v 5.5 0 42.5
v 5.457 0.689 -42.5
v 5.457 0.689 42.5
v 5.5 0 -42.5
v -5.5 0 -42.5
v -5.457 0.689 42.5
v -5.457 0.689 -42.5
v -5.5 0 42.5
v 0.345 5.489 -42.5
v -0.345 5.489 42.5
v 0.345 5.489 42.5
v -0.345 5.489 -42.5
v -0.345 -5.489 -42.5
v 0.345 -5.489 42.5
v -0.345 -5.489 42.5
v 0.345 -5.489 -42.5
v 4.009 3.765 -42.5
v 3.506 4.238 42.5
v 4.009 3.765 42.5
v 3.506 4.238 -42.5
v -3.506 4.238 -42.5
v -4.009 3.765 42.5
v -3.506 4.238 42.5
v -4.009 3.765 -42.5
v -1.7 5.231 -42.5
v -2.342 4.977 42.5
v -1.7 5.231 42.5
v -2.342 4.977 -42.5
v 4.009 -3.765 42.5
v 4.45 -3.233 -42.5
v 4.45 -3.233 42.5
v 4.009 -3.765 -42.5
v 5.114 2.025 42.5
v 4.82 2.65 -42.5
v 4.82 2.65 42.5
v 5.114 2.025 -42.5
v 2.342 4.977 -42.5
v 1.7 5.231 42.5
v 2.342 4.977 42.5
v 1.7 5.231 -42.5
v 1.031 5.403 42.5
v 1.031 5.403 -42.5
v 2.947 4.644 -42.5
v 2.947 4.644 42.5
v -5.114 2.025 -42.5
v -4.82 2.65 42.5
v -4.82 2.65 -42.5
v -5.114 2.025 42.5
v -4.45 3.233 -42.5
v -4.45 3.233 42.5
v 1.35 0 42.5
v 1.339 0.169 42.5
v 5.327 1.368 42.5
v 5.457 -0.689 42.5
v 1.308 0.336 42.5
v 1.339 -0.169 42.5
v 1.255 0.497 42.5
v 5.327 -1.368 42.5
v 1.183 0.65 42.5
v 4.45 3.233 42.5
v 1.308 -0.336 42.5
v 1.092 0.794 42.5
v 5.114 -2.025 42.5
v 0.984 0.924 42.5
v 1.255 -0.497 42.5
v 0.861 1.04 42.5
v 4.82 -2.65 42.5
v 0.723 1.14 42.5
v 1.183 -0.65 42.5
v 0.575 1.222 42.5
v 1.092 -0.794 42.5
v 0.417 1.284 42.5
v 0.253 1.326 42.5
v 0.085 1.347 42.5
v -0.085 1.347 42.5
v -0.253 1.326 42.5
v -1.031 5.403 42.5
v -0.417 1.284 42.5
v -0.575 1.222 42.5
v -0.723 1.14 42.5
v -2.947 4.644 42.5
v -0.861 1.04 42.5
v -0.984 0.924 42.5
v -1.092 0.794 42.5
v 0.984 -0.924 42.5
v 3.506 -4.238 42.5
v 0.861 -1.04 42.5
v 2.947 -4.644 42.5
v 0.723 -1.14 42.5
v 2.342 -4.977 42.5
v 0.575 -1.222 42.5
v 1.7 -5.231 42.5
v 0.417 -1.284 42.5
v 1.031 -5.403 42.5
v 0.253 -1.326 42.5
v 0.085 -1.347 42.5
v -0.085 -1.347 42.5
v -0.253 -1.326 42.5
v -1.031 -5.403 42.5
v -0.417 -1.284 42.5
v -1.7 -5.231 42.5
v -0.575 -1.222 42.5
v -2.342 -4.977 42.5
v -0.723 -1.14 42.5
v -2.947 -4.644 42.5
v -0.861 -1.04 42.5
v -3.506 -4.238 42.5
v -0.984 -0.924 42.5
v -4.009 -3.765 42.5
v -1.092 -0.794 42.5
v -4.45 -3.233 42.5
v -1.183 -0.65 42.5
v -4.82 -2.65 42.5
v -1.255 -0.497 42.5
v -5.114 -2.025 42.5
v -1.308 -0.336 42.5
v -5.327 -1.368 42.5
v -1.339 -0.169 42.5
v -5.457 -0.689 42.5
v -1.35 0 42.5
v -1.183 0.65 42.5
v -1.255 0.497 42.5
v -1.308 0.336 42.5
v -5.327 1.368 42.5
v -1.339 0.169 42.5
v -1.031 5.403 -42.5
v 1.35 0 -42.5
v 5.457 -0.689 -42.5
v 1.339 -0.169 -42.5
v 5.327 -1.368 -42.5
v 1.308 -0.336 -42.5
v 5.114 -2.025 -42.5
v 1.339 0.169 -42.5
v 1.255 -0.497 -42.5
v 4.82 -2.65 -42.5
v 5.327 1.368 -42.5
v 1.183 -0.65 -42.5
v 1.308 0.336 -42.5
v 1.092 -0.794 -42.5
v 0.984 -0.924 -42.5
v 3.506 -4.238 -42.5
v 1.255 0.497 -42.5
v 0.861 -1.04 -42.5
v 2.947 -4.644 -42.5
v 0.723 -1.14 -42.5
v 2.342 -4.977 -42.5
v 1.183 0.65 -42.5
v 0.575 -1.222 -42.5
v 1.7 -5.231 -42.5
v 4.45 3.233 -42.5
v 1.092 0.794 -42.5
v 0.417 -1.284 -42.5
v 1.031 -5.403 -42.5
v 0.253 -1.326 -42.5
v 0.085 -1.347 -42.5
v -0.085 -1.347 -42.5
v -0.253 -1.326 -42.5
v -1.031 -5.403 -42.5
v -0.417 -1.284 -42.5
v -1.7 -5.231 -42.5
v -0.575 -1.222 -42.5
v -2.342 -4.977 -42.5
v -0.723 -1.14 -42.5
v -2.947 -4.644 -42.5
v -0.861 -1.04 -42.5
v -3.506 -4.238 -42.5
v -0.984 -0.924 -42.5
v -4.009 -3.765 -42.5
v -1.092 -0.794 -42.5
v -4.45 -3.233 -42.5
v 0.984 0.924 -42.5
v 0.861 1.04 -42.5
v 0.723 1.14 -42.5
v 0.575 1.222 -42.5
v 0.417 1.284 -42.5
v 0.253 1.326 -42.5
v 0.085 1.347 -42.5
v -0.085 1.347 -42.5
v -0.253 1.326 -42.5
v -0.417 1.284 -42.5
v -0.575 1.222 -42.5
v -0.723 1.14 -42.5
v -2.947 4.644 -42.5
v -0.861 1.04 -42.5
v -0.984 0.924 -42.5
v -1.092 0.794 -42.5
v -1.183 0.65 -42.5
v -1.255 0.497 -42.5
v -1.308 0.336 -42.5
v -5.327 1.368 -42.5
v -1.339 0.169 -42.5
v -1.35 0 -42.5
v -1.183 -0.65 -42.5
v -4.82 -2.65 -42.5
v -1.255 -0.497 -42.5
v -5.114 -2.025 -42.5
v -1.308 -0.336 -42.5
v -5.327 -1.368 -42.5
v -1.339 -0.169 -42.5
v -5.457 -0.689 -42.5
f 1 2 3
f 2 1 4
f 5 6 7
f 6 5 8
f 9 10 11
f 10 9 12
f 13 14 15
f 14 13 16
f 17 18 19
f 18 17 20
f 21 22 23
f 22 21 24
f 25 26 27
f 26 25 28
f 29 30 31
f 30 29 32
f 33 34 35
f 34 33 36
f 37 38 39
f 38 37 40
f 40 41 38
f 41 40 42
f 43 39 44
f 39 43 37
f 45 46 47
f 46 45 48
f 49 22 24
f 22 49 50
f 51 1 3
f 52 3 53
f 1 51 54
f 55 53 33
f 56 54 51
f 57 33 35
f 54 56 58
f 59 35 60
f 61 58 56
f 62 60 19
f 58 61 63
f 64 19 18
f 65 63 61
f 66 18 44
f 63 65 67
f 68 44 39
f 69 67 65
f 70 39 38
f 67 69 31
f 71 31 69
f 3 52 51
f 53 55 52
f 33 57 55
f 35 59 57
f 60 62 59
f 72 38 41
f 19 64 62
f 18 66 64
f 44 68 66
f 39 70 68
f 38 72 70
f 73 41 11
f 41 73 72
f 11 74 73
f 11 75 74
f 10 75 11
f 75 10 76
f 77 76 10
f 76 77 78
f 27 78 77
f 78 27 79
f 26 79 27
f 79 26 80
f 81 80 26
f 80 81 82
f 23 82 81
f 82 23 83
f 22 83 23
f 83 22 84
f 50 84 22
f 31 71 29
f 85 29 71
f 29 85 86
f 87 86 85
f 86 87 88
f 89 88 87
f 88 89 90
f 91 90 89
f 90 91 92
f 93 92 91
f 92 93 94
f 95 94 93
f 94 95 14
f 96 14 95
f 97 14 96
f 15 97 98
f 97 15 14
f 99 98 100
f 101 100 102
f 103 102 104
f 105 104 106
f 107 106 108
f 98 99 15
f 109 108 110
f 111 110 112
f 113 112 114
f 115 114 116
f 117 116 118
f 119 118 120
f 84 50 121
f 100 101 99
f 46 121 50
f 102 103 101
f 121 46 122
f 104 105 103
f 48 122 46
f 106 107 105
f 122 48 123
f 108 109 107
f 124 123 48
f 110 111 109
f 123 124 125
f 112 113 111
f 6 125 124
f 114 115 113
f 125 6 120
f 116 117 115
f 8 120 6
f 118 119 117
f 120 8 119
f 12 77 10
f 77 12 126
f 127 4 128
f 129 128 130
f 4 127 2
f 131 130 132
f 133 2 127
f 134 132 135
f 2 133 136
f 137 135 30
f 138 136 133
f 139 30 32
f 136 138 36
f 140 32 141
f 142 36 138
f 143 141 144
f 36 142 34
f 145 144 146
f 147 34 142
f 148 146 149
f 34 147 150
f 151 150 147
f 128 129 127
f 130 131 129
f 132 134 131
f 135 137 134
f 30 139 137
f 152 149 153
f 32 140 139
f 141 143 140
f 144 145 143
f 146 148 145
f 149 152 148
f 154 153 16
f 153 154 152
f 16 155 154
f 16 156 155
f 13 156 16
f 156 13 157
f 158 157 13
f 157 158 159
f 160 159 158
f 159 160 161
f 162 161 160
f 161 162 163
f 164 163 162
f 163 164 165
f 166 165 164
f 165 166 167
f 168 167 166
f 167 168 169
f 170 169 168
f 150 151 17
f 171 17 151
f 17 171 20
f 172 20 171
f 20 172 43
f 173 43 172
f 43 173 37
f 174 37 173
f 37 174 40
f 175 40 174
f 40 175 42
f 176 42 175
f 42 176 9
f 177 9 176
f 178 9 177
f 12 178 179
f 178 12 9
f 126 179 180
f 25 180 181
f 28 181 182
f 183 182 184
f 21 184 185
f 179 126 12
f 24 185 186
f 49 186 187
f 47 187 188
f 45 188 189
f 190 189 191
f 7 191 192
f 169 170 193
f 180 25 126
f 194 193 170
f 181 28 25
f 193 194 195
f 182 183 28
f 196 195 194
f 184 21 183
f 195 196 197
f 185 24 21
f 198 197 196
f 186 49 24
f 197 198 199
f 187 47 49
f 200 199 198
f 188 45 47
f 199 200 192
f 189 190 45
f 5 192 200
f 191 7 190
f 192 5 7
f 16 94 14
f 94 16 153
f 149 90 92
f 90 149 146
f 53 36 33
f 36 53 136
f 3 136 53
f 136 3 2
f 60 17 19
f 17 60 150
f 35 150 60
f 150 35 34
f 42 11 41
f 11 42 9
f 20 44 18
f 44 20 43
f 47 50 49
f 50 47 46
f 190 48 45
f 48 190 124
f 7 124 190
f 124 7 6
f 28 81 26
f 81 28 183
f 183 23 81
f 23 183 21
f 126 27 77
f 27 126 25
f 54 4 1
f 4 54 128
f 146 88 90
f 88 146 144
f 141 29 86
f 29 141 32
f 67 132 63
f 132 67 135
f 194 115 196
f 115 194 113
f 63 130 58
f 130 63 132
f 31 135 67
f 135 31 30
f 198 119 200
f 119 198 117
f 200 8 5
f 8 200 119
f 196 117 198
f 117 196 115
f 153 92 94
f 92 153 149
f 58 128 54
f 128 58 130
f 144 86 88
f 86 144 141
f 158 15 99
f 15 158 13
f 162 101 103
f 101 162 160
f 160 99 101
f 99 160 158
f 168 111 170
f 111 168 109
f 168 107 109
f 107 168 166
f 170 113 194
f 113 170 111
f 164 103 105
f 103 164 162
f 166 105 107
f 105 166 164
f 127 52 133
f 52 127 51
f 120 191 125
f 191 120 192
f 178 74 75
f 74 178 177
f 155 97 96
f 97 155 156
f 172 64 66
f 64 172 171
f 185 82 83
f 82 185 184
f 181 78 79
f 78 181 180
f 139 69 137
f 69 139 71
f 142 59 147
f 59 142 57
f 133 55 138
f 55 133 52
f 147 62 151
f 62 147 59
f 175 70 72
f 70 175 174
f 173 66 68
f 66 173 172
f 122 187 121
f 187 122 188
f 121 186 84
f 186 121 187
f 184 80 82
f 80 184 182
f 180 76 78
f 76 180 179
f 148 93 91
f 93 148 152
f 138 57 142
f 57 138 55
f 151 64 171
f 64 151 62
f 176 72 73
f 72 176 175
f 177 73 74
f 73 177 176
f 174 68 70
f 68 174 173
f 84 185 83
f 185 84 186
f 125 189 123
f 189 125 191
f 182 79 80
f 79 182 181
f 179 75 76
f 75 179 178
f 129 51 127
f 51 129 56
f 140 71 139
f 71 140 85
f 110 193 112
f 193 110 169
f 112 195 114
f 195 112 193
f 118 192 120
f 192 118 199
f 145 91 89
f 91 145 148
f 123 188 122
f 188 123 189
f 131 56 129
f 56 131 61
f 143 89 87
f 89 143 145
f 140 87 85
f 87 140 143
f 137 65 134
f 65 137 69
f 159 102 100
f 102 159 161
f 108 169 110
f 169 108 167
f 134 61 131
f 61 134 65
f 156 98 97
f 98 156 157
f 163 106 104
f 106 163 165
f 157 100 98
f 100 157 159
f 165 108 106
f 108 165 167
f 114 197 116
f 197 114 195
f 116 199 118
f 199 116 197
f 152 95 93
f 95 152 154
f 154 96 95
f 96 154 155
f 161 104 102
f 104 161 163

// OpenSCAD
$fn = 50;


difference() {
	union() {
		translate(v = [0, 0, -42.5000000000]) {
			cylinder(h = 85, r = 5.5000000000);
		}
	}
	union() {
		translate(v = [0, 0, -100.0000000000]) {
			cylinder(h = 200, r = 1.3500000000);
		}
	}
}
